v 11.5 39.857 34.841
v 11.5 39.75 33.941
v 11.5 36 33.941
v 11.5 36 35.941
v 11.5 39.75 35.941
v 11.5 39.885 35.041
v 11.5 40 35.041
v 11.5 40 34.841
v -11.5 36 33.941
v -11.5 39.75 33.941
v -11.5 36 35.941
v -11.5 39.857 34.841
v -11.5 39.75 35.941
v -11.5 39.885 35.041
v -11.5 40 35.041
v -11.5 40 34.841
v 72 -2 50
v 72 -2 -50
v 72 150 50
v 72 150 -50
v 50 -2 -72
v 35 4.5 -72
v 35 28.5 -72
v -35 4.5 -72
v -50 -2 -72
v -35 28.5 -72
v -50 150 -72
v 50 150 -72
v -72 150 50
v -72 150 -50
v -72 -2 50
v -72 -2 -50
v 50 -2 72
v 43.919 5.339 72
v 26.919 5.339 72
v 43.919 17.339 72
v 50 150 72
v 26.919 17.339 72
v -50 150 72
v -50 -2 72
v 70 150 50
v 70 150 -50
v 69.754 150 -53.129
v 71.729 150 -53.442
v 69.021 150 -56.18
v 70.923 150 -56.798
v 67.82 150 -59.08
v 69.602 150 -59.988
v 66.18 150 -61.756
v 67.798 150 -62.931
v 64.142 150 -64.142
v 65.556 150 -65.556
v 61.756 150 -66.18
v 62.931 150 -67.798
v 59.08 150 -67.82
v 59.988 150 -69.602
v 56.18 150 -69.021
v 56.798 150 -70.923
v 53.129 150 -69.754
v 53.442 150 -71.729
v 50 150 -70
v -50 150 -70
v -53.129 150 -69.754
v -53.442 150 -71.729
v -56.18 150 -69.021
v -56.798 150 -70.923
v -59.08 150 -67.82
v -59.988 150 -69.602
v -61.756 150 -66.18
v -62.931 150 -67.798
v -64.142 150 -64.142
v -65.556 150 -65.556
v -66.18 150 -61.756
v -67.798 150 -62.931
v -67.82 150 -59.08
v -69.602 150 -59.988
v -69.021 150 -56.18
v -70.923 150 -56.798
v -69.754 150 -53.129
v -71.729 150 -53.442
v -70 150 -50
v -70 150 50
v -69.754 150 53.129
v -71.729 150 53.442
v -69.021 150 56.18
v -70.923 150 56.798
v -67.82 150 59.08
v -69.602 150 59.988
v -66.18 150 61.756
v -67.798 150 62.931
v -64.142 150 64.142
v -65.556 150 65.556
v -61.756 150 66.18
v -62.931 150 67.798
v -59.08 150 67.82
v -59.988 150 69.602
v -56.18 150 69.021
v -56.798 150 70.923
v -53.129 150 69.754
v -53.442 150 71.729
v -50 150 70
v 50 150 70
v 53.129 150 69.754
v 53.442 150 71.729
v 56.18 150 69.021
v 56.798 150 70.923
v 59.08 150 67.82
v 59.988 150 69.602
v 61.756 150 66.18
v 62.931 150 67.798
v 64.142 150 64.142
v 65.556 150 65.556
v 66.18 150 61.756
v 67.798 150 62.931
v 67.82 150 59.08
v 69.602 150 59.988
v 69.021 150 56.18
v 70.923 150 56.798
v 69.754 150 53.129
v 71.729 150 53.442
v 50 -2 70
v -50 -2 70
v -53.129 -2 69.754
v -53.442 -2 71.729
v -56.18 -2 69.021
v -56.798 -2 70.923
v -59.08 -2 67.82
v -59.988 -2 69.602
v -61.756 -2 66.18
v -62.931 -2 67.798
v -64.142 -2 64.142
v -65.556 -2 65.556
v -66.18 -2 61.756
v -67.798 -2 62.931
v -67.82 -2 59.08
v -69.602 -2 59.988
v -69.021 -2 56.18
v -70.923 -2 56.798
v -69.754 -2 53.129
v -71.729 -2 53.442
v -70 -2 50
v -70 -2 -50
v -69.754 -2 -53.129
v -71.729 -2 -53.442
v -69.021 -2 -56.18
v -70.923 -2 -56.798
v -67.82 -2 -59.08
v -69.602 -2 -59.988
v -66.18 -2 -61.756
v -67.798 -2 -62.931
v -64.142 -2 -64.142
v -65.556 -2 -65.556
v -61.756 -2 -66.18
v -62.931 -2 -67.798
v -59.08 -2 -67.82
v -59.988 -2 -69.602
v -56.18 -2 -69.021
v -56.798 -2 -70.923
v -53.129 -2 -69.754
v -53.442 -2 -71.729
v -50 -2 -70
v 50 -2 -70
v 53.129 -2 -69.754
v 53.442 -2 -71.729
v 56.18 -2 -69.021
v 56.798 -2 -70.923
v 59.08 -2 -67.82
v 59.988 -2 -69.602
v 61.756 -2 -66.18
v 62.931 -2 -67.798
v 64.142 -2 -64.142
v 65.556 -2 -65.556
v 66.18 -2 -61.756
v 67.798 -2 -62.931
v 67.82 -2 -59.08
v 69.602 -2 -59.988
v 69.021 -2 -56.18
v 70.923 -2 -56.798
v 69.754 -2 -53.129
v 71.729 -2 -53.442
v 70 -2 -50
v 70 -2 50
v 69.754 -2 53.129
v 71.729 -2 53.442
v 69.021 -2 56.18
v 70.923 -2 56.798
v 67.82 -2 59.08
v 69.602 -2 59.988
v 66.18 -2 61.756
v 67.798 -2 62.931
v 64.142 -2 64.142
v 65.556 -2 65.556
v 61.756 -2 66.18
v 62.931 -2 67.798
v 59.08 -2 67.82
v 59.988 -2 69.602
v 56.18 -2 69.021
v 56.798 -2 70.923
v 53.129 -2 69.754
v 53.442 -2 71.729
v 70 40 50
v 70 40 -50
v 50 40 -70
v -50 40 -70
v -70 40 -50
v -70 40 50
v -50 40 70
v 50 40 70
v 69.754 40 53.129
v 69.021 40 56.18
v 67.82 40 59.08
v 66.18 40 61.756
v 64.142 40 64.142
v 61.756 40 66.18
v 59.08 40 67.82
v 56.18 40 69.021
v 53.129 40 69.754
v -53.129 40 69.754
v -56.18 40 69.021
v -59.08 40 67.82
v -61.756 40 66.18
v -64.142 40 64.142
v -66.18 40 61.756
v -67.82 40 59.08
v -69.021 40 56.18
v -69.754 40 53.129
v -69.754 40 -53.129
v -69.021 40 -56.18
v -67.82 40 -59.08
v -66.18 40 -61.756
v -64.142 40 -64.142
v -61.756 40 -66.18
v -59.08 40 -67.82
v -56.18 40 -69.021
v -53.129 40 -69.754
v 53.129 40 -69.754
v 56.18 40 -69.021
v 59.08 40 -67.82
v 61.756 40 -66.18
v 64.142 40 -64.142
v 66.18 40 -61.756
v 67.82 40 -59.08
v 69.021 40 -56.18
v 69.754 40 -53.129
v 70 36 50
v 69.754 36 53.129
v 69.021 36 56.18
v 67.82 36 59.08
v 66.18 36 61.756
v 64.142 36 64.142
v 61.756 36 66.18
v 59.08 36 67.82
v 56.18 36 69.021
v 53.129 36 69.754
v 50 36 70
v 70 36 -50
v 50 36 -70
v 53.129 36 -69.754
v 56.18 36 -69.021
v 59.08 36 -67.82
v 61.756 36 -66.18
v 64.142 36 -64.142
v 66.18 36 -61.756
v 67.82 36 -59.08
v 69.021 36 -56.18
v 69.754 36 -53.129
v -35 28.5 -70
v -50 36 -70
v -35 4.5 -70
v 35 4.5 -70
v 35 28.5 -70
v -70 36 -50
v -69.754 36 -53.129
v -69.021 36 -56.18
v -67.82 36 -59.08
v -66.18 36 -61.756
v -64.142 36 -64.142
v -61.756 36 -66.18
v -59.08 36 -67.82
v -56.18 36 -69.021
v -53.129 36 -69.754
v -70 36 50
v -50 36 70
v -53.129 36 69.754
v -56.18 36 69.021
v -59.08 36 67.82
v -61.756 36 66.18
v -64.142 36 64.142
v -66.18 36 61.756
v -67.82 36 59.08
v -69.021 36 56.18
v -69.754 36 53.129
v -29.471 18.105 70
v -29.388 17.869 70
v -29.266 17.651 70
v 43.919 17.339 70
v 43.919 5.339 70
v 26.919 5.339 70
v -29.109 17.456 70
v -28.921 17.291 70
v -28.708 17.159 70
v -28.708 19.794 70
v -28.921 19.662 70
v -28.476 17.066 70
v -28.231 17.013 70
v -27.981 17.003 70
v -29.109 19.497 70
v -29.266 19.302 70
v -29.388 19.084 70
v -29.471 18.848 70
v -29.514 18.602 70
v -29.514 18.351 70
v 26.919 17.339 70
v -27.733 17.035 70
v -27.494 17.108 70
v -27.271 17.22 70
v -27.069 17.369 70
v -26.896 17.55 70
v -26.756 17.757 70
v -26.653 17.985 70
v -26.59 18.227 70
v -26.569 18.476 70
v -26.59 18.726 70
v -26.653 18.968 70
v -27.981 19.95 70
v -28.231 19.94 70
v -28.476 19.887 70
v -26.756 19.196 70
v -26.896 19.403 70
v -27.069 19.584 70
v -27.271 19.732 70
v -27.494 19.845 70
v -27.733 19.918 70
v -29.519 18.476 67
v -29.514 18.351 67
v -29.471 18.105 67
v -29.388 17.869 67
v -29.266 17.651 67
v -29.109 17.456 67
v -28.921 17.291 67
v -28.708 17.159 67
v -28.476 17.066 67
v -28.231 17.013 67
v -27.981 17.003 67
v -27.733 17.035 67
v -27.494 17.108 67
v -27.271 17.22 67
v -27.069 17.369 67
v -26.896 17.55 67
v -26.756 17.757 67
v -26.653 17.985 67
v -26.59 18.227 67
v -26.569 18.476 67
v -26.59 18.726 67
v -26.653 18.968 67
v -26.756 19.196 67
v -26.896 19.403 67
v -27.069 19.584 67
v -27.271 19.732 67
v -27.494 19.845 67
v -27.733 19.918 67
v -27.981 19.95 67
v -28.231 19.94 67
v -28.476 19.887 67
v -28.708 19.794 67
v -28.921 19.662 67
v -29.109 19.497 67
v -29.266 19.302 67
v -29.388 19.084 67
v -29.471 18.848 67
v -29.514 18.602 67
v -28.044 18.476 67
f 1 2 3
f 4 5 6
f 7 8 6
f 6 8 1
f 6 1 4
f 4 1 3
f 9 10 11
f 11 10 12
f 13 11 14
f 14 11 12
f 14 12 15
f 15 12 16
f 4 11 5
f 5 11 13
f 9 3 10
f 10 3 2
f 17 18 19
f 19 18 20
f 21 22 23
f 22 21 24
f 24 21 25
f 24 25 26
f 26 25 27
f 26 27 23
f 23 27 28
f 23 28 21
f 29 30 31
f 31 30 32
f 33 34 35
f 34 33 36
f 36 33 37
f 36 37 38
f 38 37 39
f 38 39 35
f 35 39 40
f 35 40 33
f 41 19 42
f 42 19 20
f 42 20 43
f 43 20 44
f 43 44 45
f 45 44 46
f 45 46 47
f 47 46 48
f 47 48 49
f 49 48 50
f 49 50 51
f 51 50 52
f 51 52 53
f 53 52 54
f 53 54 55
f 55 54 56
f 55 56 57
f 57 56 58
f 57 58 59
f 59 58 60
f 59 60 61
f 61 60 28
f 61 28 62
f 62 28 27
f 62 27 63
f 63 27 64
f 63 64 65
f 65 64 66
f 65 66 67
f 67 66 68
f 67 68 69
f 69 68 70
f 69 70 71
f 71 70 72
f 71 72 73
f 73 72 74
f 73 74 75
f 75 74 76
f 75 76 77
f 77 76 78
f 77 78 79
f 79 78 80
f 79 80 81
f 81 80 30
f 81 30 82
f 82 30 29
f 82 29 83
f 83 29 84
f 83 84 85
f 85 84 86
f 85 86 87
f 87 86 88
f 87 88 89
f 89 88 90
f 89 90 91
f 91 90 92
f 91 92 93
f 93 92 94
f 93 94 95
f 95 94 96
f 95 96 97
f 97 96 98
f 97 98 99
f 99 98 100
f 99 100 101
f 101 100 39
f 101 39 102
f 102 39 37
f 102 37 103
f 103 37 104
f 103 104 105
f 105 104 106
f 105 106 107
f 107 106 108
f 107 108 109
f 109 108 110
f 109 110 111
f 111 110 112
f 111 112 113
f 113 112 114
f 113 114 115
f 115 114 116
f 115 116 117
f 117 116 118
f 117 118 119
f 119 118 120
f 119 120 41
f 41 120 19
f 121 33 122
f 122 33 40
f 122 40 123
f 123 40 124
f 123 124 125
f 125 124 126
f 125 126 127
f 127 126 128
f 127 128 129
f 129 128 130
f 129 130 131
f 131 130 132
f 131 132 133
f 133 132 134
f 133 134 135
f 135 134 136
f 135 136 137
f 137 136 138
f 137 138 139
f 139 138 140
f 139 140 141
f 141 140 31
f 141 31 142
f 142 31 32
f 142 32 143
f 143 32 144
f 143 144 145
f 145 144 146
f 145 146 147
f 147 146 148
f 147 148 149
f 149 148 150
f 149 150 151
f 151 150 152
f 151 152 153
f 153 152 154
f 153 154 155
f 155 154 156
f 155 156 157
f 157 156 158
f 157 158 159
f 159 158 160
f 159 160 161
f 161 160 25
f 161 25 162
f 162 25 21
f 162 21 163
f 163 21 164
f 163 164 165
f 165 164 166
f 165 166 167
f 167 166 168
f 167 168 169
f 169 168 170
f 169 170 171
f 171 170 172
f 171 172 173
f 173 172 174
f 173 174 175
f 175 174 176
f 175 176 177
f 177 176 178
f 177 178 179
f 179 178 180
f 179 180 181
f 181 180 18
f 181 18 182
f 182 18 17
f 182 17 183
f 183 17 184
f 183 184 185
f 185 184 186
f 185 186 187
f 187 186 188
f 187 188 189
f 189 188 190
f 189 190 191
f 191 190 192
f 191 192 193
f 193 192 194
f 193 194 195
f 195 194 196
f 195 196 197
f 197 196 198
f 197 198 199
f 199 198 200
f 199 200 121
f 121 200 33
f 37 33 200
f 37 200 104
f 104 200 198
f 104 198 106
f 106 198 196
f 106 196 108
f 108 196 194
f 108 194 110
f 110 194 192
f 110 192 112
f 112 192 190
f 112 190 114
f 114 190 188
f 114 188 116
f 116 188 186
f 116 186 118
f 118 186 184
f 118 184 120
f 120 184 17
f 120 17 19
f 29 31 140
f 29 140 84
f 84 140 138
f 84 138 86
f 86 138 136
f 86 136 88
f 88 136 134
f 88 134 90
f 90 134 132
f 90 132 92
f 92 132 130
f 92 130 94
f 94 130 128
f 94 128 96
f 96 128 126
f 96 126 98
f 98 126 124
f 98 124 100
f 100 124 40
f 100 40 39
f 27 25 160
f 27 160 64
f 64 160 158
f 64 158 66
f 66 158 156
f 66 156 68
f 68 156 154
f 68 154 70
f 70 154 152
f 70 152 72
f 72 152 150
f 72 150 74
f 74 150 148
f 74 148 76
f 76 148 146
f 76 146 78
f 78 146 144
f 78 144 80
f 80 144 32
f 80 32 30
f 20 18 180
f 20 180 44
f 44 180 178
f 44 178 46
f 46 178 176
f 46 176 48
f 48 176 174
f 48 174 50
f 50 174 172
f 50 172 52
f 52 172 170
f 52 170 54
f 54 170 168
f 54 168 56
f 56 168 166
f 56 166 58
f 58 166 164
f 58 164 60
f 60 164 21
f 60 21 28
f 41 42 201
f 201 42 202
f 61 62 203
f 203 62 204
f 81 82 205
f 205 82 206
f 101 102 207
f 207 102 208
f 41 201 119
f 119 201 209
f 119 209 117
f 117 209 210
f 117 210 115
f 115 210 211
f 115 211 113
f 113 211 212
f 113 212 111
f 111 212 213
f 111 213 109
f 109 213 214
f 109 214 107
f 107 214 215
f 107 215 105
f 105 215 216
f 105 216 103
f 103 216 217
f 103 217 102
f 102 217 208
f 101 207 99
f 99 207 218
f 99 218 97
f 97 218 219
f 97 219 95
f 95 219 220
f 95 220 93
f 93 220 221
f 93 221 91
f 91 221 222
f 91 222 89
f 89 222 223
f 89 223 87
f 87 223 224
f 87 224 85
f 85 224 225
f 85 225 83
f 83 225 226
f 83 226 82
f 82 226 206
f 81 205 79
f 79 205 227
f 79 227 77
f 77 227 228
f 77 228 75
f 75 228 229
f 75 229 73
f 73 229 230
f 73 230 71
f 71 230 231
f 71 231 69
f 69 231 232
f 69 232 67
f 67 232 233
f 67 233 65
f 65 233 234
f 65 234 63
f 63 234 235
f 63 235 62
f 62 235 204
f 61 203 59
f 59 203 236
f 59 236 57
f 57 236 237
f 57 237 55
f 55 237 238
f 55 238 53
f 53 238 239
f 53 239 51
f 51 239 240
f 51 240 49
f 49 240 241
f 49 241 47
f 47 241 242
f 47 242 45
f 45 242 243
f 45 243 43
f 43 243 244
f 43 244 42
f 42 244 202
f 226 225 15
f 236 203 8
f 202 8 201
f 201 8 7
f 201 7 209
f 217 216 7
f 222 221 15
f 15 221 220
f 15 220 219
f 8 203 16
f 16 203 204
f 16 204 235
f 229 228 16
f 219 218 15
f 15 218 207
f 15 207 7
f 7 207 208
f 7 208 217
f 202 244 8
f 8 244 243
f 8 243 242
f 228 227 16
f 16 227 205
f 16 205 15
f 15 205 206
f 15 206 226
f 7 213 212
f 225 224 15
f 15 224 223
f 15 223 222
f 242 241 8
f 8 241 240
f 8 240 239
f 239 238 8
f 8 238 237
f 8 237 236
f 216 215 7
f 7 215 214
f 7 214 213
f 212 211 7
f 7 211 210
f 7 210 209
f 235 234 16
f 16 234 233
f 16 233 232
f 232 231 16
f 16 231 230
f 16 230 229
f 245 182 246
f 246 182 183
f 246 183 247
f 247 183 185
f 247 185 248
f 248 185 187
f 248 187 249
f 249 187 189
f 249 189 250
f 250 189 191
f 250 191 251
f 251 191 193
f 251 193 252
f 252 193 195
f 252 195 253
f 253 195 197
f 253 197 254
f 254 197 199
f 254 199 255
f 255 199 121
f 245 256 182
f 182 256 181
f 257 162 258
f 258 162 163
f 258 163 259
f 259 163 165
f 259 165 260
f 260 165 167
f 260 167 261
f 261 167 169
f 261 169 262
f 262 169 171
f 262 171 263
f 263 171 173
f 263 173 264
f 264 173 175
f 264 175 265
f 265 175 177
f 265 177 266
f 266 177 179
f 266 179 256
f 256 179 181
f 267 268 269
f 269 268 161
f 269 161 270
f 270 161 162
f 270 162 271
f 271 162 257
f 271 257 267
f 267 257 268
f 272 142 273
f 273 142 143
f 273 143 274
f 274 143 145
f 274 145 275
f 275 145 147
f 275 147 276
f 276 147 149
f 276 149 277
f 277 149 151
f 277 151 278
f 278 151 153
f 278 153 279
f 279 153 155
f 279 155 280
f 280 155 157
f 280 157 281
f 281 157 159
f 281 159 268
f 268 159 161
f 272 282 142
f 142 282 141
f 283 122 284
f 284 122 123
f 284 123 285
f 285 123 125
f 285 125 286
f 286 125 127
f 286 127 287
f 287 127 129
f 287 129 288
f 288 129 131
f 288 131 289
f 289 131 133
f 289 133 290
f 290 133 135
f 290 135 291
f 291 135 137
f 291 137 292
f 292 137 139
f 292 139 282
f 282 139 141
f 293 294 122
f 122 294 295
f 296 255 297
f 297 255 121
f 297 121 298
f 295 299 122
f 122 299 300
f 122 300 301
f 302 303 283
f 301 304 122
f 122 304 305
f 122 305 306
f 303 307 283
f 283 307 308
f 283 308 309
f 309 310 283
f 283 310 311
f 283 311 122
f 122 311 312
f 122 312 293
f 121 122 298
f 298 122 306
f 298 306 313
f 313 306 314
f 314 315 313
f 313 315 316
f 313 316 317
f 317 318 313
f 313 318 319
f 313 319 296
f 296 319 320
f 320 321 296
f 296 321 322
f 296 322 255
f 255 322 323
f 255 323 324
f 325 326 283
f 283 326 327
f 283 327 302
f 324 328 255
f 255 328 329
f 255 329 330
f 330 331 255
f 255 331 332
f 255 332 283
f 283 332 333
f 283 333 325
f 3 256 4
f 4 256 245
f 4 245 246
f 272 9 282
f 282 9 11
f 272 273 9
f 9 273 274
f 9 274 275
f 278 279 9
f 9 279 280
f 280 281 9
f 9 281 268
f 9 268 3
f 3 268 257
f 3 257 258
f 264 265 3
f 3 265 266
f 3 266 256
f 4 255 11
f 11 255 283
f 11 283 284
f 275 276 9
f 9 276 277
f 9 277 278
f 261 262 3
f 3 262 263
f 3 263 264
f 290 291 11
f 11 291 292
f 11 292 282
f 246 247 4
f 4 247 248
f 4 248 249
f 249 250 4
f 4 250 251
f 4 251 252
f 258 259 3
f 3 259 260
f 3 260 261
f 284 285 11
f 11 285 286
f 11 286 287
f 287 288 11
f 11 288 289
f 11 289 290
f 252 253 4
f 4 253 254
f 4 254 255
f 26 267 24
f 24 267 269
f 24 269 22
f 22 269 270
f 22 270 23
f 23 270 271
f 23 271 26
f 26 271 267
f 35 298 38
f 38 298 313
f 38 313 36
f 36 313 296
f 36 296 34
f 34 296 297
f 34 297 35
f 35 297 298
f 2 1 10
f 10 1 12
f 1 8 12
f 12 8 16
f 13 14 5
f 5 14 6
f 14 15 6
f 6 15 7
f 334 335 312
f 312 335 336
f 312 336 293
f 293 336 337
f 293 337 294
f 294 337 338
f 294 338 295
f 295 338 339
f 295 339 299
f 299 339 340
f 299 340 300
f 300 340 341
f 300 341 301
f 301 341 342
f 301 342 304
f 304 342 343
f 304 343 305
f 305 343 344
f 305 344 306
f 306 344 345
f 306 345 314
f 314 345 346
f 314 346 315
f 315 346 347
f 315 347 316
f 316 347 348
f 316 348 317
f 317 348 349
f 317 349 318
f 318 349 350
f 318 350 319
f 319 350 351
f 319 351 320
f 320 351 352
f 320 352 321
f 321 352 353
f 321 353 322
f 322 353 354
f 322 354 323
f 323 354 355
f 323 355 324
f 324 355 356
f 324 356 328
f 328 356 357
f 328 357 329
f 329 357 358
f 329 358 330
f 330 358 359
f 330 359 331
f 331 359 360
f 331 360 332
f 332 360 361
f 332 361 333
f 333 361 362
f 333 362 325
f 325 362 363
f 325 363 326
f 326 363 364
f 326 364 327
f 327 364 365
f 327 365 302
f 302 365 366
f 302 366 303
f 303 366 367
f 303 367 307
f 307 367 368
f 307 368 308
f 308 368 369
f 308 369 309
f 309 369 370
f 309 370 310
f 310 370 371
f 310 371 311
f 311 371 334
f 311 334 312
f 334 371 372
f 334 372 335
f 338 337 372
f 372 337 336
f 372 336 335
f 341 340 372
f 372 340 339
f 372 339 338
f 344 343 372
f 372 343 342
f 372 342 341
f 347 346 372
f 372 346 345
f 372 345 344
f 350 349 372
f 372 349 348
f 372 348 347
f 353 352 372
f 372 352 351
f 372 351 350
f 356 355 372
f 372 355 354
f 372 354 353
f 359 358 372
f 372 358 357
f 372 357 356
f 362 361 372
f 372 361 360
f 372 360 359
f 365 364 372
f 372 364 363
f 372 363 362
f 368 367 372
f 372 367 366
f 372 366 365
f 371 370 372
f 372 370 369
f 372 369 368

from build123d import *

# Parameters (mm, degrees)
ESQUISSE1_W             = 140
ESQUISSE1_H             = 140
BOSS_EXTRU_1_DEPTH      = 150
CONG_1_R                = 20
COQUE1_T                = 2
BOSS_EXTRU_2_START      = 40
BOSS_EXTRU_2_DEPTH      = 40
ENL_V_START             = -38
ENL_V_MAT_EXTRU_1_DEPTH = 38
ESQUISSE4_W             = 23
ESQUISSE4_H             = 2
ENL_V_MAT_EXTRU_2_DEPTH = 33
ESQUISSE5_W             = 70
ESQUISSE5_H             = 24
ENL_V_MAT_EXTRU_3_DEPTH = 33
ESQUISSE6_W             = 17
ESQUISSE6_H             = 12
ENL_V_MAT_EXTRU_4_DEPTH = 33
BOSS_EXTRU_3_DEPTH      = 23
BOSS_EXTRU_4_DEPTH      = 23
ESQUISSE12_R            = 1.475
BOSS_EXTRU_5_DEPTH      = 3


with BuildPart() as part:
    # Esquisse1 → Boss.-Extru.1 (new body)
    with BuildSketch(Plane(origin=(0, 0, 0), x_dir=(1, 0, 0), z_dir=(0, 1, 0))):
        Rectangle(ESQUISSE1_W, ESQUISSE1_H)
    extrude(amount=BOSS_EXTRU_1_DEPTH)

    # Congé1
    cong_1_edges = [part.edges().sort_by_distance(p)[0] for p in [
        (70, 75, 70),
        (-70, 75, 70),
        (-70, 75, -70),
        (70, 75, -70),
    ]]
    fillet(cong_1_edges, radius=CONG_1_R)

    # Coque1
    coque1_openings = [part.faces().sort_by_distance(p)[0] for p in [
        (0, 150, 0),
    ]]
    offset(amount=COQUE1_T, openings=coque1_openings, kind=Kind.INTERSECTION)

    # Esquisse2 → Boss.-Extru.2 (add)
    with BuildSketch(Plane(origin=(0, 0, 0), x_dir=(1, 0, 0), z_dir=(0, 1, 0)).offset(BOSS_EXTRU_2_START)):
        with BuildLine():
            Line((70, -50), (70, 50))
            ThreePointArc((70, 50), (64.142135624, 64.142135624), (50, 70))
            Line((50, 70), (-50, 70))
            ThreePointArc((-50, 70), (-64.142135624, 64.142135624), (-70, 50))
            Line((-70, 50), (-70, -50))
            ThreePointArc((-70, -50), (-64.142135624, -64.142135624), (-50, -70))
            Line((-50, -70), (50, -70))
            ThreePointArc((50, -70), (64.142135624, -64.142135624), (70, -50))
        make_face()
    extrude(amount=-BOSS_EXTRU_2_DEPTH)

    # Esquisse3 → Enlèv. mat.-Extru.1 (cut)
    with BuildSketch(Plane.XZ.offset(2).offset(ENL_V_START)):
        with BuildLine():
            Line((70, -50), (70, 50))
            ThreePointArc((70, 50), (64.142135624, 64.142135624), (50, 70))
            Line((50, 70), (-50, 70))
            ThreePointArc((-50, 70), (-64.142135624, 64.142135624), (-70, 50))
            Line((-70, 50), (-70, -50))
            ThreePointArc((-70, -50), (-64.142135624, -64.142135624), (-50, -70))
            Line((-50, -70), (50, -70))
            ThreePointArc((50, -70), (64.142135624, -64.142135624), (70, -50))
        make_face()
    extrude(amount=ENL_V_MAT_EXTRU_1_DEPTH, mode=Mode.SUBTRACT)

    # Esquisse4 → Enlèv. mat.-Extru.2 (cut)
    with BuildSketch(Plane.XZ.offset(-36)):
        with Locations((0, 34.941356373)):
            Rectangle(ESQUISSE4_W, ESQUISSE4_H)
    extrude(amount=-ENL_V_MAT_EXTRU_2_DEPTH, mode=Mode.SUBTRACT)

    # Esquisse5 → Enlèv. mat.-Extru.3 (cut)
    with BuildSketch(Plane(origin=(0, 0, -72), x_dir=(-1, 0, 0), z_dir=(0, 0, -1))):
        with Locations((0, 16.5)):
            Rectangle(ESQUISSE5_W, ESQUISSE5_H)
    extrude(amount=-ENL_V_MAT_EXTRU_3_DEPTH, mode=Mode.SUBTRACT)

    # Esquisse6 → Enlèv. mat.-Extru.4 (cut)
    with BuildSketch(Plane.XY.offset(72)):
        with Locations((35.41933702, 11.338578381)):
            Rectangle(ESQUISSE6_W, ESQUISSE6_H)
    extrude(amount=-ENL_V_MAT_EXTRU_4_DEPTH, mode=Mode.SUBTRACT)

    # Esquisse7 → Boss.-Extru.3 (add)
    with BuildSketch(Plane.ZY.offset(-11.5)):
        Polygon((33.941356373, 40), (34.841356373, 40), (34.841356373, 39.856828703), (33.941356373, 39.75), align=None)
    extrude(amount=BOSS_EXTRU_3_DEPTH)

    # Esquisse10 → Boss.-Extru.4 (add)
    with BuildSketch(Plane(origin=(-11.5, 0, 0), x_dir=(0, 0, -1), z_dir=(1, 0, 0))):
        Polygon((-35.941356373, 40), (-35.041356373, 40), (-35.041356373, 39.885374009), (-35.941356373, 39.75), align=None)
    extrude(amount=BOSS_EXTRU_4_DEPTH)

    # Esquisse12 → Boss.-Extru.5 (add)
    with BuildSketch(Plane(origin=(0, 0, 70), x_dir=(-1, 0, 0), z_dir=(0, 0, -1))):
        with Locations(Location((28.043934099, 18.476473505, 0), (0, 0, 180))):
            Circle(ESQUISSE12_R)
    extrude(amount=BOSS_EXTRU_5_DEPTH)


solid = part.part
